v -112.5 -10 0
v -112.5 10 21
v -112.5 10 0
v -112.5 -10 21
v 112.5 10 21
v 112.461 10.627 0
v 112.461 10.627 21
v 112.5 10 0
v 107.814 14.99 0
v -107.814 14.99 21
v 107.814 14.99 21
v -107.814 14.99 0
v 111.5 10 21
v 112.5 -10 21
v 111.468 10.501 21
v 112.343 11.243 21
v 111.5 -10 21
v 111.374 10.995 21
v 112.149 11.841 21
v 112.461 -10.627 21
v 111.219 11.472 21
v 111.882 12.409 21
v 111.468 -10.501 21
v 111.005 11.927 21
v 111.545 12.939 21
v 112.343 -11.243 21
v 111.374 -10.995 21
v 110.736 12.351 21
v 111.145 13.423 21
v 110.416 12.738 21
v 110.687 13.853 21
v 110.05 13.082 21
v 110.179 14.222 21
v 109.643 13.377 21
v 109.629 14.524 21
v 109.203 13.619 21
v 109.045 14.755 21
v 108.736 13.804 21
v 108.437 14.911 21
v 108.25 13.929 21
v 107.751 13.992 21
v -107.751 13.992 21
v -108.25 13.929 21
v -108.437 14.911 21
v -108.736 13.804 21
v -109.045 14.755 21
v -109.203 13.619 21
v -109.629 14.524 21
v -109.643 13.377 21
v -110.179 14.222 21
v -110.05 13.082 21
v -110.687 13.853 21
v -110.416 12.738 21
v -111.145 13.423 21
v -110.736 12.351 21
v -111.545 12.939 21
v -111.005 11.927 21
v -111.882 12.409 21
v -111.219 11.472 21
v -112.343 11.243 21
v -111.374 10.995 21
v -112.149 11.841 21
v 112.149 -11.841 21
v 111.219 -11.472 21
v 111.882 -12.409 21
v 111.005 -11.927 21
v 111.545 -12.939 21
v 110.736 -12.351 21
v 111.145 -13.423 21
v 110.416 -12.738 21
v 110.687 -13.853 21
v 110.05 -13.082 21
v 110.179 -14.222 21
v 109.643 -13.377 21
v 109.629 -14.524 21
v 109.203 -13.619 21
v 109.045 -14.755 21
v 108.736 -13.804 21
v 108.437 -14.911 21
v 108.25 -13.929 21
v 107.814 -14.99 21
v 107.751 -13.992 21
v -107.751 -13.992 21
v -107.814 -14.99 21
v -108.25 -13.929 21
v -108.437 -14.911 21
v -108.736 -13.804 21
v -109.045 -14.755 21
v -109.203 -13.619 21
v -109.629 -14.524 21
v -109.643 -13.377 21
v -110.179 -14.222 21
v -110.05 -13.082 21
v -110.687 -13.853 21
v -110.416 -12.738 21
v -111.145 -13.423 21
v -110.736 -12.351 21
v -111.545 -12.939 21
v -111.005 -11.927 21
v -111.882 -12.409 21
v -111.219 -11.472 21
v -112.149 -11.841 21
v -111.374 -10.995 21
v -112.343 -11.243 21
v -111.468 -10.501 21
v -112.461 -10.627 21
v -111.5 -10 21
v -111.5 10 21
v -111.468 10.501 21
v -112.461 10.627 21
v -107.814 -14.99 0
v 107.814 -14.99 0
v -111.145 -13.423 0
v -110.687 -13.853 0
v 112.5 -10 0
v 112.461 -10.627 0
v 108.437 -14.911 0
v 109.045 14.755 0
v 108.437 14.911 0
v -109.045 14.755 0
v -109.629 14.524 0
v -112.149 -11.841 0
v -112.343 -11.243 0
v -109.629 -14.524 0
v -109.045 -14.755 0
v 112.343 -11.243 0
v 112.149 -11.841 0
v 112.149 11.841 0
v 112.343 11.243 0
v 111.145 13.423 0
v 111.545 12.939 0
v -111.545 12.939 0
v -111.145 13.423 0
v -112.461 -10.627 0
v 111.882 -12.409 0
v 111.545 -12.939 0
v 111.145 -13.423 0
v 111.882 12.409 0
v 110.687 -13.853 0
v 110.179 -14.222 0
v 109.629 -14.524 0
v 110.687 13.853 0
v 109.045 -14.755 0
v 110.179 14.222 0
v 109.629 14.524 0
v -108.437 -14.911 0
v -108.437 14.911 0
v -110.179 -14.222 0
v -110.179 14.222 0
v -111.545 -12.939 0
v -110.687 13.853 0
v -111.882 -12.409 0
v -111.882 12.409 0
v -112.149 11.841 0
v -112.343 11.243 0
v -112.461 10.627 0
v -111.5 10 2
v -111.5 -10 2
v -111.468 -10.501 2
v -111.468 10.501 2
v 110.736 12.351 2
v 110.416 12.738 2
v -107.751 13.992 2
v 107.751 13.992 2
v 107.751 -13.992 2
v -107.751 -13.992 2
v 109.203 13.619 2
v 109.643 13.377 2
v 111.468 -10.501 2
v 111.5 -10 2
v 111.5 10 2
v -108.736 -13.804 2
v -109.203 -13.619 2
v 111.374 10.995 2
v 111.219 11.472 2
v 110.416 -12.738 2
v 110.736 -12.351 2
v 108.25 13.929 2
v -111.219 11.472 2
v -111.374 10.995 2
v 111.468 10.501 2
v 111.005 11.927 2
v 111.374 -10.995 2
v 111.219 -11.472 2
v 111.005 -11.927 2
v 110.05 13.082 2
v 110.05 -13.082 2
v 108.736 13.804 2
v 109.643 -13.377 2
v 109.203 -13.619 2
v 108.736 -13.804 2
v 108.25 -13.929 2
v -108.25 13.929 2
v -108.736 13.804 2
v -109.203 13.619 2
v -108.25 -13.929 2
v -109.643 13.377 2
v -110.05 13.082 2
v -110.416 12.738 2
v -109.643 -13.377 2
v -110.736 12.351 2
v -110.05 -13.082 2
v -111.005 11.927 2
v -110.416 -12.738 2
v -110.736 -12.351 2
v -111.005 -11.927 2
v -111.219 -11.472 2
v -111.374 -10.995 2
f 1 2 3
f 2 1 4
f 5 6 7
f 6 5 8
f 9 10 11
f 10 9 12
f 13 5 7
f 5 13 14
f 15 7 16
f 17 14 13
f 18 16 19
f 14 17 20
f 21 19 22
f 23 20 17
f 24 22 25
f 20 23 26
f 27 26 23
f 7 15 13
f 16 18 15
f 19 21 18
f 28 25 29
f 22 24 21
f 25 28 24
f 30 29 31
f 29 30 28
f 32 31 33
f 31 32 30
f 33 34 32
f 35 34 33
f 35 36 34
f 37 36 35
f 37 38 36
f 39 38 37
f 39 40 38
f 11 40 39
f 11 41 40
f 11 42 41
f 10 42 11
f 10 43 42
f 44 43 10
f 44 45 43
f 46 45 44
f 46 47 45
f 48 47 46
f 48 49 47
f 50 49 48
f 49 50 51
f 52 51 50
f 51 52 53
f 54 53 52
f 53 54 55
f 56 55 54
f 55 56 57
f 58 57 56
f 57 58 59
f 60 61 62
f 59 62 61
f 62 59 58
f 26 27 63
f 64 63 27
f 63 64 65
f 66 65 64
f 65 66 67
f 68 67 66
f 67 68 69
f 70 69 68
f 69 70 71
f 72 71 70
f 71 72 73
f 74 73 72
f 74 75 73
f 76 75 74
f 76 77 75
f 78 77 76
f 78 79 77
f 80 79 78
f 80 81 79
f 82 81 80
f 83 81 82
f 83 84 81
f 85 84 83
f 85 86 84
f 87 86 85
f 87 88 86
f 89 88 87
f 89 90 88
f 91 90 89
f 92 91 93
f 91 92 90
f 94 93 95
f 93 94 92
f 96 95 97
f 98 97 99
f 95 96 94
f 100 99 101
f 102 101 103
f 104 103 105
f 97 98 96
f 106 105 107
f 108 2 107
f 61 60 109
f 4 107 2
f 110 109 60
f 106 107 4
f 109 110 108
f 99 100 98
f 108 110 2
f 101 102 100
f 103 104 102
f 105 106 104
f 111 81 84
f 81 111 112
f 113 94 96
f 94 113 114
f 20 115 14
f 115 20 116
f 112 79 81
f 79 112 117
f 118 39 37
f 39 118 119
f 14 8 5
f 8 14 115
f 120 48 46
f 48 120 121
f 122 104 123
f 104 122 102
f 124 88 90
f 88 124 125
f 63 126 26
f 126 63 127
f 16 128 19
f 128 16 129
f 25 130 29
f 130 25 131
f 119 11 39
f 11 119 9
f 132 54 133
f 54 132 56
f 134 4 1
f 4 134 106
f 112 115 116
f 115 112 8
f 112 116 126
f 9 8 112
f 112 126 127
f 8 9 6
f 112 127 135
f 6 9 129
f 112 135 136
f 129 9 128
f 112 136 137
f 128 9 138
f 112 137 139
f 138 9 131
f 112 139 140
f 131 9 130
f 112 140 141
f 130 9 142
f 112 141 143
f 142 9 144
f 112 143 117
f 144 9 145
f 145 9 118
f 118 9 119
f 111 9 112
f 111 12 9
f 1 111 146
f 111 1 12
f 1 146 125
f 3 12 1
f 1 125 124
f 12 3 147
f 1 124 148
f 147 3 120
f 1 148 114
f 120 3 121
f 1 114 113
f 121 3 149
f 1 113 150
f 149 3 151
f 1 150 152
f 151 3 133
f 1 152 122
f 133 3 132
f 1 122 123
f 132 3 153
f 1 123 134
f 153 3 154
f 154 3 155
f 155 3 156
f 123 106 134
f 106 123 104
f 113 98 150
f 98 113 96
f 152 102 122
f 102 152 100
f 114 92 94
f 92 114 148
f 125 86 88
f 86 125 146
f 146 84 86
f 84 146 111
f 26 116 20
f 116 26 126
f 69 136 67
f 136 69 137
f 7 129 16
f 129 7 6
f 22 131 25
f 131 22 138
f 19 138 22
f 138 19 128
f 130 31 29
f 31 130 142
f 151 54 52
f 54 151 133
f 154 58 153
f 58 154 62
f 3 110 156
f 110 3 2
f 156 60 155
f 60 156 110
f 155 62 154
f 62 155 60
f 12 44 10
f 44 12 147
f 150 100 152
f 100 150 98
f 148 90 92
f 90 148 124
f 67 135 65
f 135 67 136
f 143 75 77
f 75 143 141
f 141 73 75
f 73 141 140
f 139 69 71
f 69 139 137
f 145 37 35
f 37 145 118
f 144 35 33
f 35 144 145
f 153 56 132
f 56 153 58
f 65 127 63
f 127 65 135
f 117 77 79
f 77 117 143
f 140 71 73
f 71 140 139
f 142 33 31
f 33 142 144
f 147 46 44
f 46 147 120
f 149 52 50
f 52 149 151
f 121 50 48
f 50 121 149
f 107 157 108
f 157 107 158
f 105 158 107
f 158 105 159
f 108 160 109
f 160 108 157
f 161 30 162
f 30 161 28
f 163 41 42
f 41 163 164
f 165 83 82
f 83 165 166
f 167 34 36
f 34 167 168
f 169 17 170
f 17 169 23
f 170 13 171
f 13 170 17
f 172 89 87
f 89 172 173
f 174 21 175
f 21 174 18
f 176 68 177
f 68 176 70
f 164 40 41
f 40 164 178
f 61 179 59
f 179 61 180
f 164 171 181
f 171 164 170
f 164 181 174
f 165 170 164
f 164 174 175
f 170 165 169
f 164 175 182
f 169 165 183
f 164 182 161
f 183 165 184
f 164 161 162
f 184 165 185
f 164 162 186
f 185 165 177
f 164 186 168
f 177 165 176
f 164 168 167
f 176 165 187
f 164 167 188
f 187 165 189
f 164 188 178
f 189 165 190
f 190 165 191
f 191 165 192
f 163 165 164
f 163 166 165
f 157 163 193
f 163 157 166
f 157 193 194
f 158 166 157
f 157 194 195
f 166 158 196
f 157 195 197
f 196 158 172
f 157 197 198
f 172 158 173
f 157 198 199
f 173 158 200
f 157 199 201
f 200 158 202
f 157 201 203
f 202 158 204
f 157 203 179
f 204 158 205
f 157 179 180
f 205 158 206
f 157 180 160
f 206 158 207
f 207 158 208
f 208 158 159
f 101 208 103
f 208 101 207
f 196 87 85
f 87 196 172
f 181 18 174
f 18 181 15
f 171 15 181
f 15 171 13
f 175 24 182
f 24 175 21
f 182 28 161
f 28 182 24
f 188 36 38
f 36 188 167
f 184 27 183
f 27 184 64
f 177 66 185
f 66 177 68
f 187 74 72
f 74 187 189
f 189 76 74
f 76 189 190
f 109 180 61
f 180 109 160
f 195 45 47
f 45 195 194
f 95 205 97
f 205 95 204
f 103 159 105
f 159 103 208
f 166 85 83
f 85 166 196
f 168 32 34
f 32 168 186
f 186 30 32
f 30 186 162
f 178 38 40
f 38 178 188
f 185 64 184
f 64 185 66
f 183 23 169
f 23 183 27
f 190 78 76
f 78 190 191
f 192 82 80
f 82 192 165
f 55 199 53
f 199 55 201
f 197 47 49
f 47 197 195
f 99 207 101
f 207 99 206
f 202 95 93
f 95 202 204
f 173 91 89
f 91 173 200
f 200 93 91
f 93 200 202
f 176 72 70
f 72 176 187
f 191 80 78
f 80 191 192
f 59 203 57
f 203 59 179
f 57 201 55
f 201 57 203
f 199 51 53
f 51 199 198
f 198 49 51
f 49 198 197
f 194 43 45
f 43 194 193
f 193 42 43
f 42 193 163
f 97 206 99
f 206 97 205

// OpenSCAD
$fn = 50;


difference() {
	union() {
		hull() {
			translate(v = [-107.5000000000, 10.0000000000, 0]) {
				cylinder(h = 21, r = 5);
			}
			translate(v = [107.5000000000, 10.0000000000, 0]) {
				cylinder(h = 21, r = 5);
			}
			translate(v = [-107.5000000000, -10.0000000000, 0]) {
				cylinder(h = 21, r = 5);
			}
			translate(v = [107.5000000000, -10.0000000000, 0]) {
				cylinder(h = 21, r = 5);
			}
		}
	}
	union() {
		translate(v = [0, 0, 2]) {
			hull() {
				translate(v = [-107.5000000000, 10.0000000000, 0]) {
					cylinder(h = 19, r = 4);
				}
				translate(v = [107.5000000000, 10.0000000000, 0]) {
					cylinder(h = 19, r = 4);
				}
				translate(v = [-107.5000000000, -10.0000000000, 0]) {
					cylinder(h = 19, r = 4);
				}
				translate(v = [107.5000000000, -10.0000000000, 0]) {
					cylinder(h = 19, r = 4);
				}
			}
		}
	}
}
